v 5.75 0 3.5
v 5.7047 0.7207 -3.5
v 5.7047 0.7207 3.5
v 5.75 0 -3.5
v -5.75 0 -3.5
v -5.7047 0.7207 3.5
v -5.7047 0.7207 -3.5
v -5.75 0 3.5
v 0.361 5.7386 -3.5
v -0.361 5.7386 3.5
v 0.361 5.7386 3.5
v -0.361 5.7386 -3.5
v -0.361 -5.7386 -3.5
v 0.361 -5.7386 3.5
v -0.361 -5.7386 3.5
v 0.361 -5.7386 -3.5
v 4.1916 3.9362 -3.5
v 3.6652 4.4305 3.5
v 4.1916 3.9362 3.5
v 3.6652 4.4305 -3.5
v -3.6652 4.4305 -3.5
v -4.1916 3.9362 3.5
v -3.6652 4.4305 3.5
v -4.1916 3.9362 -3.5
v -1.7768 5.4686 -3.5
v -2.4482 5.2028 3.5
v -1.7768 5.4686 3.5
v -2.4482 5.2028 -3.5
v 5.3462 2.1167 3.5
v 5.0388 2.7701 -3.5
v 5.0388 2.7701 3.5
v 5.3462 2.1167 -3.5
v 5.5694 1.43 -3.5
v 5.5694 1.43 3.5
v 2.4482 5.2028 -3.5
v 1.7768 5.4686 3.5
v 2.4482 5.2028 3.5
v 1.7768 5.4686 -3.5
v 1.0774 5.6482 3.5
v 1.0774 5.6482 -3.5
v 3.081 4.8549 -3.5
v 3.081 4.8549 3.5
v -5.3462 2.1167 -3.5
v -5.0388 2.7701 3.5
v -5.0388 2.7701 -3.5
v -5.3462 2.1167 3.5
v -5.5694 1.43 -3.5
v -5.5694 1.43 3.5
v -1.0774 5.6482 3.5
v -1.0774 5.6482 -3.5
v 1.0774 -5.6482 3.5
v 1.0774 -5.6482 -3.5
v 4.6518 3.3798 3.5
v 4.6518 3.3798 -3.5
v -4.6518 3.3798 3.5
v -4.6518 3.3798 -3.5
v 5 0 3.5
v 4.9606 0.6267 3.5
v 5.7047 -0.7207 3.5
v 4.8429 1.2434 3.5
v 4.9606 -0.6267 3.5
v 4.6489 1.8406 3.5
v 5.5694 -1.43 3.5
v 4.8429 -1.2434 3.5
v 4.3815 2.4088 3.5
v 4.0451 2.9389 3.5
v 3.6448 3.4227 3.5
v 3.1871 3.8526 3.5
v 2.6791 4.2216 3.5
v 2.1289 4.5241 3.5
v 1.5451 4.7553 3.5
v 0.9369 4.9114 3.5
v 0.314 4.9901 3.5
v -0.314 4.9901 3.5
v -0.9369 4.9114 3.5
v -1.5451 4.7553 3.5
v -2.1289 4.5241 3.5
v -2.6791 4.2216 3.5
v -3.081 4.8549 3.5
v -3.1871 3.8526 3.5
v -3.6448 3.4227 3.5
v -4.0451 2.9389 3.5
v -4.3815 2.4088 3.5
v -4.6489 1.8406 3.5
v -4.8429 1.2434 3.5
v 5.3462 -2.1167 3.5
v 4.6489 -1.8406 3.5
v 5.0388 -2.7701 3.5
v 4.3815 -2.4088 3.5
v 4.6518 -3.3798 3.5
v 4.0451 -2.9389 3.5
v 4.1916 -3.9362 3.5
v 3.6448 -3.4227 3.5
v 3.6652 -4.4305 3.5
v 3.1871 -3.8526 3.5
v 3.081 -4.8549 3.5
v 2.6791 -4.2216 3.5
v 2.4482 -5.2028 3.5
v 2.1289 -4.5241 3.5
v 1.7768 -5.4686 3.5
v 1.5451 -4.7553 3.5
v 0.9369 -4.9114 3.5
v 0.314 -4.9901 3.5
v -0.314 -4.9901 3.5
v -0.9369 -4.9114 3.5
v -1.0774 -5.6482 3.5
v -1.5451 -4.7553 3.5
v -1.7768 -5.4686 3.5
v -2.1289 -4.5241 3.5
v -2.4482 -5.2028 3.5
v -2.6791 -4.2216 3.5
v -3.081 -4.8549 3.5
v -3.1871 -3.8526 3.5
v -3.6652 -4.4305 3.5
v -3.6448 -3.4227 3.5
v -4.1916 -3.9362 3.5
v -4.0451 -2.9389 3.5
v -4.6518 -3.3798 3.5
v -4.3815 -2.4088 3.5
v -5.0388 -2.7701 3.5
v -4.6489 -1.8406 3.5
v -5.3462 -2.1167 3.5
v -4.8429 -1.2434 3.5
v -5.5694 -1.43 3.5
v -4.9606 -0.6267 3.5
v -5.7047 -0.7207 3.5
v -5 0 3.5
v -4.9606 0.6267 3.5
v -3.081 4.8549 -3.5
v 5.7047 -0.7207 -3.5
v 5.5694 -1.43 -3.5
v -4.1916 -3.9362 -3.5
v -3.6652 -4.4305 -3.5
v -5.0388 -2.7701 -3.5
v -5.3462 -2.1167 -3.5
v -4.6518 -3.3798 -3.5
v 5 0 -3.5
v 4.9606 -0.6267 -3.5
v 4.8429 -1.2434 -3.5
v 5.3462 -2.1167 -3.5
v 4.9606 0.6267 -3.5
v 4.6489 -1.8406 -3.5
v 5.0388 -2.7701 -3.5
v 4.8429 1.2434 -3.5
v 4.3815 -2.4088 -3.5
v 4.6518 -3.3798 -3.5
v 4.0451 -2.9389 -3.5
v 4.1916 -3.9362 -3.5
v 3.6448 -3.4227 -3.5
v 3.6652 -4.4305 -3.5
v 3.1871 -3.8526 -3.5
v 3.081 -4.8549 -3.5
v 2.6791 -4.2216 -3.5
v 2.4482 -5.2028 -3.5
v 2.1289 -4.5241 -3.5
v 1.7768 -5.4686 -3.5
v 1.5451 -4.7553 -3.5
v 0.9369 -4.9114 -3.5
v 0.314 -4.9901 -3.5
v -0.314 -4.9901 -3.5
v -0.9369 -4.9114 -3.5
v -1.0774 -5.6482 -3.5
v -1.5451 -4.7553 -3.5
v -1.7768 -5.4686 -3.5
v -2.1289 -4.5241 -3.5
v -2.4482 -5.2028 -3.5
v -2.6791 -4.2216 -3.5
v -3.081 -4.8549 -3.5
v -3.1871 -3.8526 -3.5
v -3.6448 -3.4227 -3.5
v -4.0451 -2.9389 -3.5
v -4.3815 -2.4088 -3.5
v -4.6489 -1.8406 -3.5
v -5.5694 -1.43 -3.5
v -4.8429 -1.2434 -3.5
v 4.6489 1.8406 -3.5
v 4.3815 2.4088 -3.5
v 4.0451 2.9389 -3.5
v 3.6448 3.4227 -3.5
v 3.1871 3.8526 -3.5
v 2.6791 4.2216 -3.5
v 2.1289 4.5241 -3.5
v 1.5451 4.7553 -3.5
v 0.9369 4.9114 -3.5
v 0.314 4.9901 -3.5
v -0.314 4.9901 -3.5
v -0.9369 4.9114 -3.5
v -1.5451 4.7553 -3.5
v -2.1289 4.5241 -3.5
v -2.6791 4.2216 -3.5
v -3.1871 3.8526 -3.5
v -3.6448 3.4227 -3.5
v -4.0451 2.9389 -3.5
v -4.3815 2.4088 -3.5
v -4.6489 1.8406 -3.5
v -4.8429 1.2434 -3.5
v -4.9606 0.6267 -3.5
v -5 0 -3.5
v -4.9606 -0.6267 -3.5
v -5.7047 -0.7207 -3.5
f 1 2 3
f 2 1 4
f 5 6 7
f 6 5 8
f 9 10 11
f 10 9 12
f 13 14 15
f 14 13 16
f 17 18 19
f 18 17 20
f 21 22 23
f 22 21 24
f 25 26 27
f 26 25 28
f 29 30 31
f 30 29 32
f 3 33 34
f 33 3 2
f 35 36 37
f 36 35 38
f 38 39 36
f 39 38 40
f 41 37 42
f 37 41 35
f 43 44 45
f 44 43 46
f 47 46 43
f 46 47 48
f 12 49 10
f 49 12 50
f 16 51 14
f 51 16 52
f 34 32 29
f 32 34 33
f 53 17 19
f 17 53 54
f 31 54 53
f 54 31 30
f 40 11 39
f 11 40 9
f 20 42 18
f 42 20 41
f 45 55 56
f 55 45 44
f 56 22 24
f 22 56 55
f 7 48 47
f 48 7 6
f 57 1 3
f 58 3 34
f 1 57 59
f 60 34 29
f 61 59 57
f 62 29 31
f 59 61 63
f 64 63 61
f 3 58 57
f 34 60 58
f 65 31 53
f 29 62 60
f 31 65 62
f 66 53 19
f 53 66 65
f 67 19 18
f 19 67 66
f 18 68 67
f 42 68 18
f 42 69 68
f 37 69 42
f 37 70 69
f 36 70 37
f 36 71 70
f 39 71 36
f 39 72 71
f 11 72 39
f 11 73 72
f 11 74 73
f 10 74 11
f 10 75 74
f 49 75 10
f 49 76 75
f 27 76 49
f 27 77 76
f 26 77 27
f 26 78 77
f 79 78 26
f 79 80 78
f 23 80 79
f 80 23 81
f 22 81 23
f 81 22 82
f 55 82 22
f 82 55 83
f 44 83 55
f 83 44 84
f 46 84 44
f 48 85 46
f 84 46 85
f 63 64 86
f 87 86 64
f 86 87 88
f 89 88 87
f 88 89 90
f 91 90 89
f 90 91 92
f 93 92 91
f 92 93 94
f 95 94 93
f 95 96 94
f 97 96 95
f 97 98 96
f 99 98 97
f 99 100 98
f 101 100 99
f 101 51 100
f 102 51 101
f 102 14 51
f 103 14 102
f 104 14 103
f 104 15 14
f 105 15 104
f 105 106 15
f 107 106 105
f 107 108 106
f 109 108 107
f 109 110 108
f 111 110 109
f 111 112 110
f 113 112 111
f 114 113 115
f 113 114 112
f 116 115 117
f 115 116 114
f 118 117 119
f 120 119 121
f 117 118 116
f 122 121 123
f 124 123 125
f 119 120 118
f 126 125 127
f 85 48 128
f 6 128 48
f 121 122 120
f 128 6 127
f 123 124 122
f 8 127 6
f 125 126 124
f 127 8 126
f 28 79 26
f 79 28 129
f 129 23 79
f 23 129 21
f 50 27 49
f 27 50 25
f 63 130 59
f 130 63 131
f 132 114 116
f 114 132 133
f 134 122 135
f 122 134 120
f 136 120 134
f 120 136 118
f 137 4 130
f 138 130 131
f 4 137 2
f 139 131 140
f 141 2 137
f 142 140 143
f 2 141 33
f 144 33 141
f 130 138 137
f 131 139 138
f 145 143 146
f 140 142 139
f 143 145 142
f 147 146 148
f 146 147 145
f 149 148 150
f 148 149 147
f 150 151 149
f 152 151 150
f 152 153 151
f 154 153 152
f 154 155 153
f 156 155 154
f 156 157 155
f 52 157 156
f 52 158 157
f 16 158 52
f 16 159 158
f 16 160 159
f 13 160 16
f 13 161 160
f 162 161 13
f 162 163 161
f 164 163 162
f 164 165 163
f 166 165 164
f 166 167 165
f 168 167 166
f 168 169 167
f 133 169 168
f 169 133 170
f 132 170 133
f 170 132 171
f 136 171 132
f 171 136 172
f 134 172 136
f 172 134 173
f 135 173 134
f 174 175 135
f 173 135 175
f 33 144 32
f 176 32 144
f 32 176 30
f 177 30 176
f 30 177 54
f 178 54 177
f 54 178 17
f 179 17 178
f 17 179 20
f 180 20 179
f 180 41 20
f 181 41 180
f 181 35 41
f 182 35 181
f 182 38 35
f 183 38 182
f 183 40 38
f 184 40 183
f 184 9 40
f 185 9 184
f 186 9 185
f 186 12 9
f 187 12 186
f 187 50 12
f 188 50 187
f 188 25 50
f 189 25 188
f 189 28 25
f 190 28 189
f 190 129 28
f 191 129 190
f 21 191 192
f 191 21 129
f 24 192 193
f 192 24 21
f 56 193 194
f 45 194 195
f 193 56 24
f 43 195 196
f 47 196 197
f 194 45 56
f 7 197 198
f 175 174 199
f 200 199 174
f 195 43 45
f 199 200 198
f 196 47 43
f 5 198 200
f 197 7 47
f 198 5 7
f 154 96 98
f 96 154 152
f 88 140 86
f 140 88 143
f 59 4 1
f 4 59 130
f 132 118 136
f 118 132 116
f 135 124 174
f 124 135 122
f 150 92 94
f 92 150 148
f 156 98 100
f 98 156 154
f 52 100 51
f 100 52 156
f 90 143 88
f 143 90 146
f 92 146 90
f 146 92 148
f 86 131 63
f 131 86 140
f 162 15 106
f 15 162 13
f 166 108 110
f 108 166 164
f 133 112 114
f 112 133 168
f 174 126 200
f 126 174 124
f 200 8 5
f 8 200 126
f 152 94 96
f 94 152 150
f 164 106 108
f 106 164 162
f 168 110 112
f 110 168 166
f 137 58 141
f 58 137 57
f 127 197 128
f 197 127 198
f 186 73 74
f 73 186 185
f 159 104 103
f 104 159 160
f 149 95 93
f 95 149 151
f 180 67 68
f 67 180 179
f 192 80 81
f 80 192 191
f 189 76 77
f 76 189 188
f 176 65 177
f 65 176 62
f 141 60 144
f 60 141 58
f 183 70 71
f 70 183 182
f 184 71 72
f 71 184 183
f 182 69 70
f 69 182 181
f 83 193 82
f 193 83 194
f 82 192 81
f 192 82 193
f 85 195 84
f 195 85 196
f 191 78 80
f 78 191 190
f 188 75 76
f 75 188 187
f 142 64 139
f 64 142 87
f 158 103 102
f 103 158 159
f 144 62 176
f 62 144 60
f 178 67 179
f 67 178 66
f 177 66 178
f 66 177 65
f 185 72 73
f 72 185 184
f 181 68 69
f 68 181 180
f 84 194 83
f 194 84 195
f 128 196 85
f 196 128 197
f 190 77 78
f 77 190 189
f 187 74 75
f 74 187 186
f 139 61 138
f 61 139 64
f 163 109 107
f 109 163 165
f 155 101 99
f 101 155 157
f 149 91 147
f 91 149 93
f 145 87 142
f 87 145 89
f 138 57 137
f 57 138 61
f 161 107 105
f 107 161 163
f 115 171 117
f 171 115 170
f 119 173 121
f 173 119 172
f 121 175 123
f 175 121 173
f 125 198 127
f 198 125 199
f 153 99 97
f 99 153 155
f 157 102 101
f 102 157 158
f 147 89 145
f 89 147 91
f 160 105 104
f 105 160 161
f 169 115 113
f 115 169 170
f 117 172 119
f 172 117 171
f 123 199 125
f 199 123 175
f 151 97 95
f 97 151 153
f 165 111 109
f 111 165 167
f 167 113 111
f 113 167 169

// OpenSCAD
$fn = 50;


difference() {
	union() {
		translate(v = [0, 0, -3.5000000000]) {
			cylinder(h = 7, r = 5.7500000000);
		}
	}
	union() {
		translate(v = [0, 0, -100.0000000000]) {
			cylinder(h = 200, r = 5.0000000000);
		}
	}
}
